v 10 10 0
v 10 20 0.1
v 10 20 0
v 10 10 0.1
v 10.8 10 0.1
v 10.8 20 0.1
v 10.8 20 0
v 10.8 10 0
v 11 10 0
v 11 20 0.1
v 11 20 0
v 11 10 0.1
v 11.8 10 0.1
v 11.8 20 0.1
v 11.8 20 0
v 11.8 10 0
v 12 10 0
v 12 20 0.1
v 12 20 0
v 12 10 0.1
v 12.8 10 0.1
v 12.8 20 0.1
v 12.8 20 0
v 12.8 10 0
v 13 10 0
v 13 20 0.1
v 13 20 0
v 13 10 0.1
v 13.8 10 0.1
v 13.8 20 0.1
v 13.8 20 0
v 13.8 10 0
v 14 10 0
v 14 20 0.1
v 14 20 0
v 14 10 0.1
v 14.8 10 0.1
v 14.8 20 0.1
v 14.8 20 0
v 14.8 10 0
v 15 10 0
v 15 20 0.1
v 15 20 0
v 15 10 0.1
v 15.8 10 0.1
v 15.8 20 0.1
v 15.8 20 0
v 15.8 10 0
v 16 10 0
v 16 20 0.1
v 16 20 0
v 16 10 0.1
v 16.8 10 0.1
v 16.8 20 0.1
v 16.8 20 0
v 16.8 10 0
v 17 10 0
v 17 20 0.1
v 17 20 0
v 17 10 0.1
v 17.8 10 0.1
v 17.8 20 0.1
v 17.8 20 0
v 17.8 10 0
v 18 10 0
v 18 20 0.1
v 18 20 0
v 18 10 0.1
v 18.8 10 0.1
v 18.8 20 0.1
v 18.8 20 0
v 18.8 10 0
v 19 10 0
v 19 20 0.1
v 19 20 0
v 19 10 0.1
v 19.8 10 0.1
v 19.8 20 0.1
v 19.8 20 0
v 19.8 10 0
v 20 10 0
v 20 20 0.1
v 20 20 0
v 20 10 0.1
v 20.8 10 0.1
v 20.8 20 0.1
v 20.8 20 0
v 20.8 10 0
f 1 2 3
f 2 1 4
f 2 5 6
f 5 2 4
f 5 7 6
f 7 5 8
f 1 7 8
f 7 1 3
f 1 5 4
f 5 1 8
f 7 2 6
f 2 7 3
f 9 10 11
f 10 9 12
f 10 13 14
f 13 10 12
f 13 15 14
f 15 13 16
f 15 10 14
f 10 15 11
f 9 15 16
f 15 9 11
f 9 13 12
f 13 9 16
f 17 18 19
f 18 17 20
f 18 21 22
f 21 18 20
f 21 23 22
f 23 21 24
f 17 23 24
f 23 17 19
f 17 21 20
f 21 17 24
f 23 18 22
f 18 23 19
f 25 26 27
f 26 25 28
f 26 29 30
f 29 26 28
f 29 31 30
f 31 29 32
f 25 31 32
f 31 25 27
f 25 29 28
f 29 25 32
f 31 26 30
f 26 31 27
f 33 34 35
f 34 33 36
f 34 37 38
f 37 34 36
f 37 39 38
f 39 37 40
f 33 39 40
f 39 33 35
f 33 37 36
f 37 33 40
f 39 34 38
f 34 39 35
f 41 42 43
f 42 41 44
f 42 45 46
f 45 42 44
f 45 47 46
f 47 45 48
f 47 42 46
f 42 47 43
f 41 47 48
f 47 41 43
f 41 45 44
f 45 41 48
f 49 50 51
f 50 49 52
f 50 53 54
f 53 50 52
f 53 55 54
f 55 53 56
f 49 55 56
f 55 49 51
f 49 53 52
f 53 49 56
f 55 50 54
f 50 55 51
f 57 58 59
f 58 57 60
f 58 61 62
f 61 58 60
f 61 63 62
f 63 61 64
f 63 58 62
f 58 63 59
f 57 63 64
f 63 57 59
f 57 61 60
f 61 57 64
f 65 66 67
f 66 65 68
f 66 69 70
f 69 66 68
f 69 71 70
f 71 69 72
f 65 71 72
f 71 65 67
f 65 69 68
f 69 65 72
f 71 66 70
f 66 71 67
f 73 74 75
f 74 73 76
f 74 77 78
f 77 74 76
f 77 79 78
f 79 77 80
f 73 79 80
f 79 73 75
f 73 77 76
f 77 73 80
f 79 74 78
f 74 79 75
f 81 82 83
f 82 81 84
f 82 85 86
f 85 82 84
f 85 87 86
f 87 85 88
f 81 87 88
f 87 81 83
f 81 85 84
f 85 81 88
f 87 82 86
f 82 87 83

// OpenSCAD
translate([10+0,10+0,0])
        for (i = [0 : 10]){
            translate([i,0,0])
                cube(size = [0.8,10,0.1]);
    }
